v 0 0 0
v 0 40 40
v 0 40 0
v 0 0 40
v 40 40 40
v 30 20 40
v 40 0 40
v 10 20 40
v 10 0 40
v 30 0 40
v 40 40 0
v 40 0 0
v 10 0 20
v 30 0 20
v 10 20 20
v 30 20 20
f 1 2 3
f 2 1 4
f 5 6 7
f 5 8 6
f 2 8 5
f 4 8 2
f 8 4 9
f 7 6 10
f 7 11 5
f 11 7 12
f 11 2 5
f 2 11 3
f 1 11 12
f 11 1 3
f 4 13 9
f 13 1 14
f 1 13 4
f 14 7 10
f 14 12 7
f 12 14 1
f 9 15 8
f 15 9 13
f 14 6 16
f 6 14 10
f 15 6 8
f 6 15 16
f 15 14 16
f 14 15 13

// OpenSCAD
difference(){

cube([40,40,40]);
translate([10,0,20])
cube([20,20,20]);

}
